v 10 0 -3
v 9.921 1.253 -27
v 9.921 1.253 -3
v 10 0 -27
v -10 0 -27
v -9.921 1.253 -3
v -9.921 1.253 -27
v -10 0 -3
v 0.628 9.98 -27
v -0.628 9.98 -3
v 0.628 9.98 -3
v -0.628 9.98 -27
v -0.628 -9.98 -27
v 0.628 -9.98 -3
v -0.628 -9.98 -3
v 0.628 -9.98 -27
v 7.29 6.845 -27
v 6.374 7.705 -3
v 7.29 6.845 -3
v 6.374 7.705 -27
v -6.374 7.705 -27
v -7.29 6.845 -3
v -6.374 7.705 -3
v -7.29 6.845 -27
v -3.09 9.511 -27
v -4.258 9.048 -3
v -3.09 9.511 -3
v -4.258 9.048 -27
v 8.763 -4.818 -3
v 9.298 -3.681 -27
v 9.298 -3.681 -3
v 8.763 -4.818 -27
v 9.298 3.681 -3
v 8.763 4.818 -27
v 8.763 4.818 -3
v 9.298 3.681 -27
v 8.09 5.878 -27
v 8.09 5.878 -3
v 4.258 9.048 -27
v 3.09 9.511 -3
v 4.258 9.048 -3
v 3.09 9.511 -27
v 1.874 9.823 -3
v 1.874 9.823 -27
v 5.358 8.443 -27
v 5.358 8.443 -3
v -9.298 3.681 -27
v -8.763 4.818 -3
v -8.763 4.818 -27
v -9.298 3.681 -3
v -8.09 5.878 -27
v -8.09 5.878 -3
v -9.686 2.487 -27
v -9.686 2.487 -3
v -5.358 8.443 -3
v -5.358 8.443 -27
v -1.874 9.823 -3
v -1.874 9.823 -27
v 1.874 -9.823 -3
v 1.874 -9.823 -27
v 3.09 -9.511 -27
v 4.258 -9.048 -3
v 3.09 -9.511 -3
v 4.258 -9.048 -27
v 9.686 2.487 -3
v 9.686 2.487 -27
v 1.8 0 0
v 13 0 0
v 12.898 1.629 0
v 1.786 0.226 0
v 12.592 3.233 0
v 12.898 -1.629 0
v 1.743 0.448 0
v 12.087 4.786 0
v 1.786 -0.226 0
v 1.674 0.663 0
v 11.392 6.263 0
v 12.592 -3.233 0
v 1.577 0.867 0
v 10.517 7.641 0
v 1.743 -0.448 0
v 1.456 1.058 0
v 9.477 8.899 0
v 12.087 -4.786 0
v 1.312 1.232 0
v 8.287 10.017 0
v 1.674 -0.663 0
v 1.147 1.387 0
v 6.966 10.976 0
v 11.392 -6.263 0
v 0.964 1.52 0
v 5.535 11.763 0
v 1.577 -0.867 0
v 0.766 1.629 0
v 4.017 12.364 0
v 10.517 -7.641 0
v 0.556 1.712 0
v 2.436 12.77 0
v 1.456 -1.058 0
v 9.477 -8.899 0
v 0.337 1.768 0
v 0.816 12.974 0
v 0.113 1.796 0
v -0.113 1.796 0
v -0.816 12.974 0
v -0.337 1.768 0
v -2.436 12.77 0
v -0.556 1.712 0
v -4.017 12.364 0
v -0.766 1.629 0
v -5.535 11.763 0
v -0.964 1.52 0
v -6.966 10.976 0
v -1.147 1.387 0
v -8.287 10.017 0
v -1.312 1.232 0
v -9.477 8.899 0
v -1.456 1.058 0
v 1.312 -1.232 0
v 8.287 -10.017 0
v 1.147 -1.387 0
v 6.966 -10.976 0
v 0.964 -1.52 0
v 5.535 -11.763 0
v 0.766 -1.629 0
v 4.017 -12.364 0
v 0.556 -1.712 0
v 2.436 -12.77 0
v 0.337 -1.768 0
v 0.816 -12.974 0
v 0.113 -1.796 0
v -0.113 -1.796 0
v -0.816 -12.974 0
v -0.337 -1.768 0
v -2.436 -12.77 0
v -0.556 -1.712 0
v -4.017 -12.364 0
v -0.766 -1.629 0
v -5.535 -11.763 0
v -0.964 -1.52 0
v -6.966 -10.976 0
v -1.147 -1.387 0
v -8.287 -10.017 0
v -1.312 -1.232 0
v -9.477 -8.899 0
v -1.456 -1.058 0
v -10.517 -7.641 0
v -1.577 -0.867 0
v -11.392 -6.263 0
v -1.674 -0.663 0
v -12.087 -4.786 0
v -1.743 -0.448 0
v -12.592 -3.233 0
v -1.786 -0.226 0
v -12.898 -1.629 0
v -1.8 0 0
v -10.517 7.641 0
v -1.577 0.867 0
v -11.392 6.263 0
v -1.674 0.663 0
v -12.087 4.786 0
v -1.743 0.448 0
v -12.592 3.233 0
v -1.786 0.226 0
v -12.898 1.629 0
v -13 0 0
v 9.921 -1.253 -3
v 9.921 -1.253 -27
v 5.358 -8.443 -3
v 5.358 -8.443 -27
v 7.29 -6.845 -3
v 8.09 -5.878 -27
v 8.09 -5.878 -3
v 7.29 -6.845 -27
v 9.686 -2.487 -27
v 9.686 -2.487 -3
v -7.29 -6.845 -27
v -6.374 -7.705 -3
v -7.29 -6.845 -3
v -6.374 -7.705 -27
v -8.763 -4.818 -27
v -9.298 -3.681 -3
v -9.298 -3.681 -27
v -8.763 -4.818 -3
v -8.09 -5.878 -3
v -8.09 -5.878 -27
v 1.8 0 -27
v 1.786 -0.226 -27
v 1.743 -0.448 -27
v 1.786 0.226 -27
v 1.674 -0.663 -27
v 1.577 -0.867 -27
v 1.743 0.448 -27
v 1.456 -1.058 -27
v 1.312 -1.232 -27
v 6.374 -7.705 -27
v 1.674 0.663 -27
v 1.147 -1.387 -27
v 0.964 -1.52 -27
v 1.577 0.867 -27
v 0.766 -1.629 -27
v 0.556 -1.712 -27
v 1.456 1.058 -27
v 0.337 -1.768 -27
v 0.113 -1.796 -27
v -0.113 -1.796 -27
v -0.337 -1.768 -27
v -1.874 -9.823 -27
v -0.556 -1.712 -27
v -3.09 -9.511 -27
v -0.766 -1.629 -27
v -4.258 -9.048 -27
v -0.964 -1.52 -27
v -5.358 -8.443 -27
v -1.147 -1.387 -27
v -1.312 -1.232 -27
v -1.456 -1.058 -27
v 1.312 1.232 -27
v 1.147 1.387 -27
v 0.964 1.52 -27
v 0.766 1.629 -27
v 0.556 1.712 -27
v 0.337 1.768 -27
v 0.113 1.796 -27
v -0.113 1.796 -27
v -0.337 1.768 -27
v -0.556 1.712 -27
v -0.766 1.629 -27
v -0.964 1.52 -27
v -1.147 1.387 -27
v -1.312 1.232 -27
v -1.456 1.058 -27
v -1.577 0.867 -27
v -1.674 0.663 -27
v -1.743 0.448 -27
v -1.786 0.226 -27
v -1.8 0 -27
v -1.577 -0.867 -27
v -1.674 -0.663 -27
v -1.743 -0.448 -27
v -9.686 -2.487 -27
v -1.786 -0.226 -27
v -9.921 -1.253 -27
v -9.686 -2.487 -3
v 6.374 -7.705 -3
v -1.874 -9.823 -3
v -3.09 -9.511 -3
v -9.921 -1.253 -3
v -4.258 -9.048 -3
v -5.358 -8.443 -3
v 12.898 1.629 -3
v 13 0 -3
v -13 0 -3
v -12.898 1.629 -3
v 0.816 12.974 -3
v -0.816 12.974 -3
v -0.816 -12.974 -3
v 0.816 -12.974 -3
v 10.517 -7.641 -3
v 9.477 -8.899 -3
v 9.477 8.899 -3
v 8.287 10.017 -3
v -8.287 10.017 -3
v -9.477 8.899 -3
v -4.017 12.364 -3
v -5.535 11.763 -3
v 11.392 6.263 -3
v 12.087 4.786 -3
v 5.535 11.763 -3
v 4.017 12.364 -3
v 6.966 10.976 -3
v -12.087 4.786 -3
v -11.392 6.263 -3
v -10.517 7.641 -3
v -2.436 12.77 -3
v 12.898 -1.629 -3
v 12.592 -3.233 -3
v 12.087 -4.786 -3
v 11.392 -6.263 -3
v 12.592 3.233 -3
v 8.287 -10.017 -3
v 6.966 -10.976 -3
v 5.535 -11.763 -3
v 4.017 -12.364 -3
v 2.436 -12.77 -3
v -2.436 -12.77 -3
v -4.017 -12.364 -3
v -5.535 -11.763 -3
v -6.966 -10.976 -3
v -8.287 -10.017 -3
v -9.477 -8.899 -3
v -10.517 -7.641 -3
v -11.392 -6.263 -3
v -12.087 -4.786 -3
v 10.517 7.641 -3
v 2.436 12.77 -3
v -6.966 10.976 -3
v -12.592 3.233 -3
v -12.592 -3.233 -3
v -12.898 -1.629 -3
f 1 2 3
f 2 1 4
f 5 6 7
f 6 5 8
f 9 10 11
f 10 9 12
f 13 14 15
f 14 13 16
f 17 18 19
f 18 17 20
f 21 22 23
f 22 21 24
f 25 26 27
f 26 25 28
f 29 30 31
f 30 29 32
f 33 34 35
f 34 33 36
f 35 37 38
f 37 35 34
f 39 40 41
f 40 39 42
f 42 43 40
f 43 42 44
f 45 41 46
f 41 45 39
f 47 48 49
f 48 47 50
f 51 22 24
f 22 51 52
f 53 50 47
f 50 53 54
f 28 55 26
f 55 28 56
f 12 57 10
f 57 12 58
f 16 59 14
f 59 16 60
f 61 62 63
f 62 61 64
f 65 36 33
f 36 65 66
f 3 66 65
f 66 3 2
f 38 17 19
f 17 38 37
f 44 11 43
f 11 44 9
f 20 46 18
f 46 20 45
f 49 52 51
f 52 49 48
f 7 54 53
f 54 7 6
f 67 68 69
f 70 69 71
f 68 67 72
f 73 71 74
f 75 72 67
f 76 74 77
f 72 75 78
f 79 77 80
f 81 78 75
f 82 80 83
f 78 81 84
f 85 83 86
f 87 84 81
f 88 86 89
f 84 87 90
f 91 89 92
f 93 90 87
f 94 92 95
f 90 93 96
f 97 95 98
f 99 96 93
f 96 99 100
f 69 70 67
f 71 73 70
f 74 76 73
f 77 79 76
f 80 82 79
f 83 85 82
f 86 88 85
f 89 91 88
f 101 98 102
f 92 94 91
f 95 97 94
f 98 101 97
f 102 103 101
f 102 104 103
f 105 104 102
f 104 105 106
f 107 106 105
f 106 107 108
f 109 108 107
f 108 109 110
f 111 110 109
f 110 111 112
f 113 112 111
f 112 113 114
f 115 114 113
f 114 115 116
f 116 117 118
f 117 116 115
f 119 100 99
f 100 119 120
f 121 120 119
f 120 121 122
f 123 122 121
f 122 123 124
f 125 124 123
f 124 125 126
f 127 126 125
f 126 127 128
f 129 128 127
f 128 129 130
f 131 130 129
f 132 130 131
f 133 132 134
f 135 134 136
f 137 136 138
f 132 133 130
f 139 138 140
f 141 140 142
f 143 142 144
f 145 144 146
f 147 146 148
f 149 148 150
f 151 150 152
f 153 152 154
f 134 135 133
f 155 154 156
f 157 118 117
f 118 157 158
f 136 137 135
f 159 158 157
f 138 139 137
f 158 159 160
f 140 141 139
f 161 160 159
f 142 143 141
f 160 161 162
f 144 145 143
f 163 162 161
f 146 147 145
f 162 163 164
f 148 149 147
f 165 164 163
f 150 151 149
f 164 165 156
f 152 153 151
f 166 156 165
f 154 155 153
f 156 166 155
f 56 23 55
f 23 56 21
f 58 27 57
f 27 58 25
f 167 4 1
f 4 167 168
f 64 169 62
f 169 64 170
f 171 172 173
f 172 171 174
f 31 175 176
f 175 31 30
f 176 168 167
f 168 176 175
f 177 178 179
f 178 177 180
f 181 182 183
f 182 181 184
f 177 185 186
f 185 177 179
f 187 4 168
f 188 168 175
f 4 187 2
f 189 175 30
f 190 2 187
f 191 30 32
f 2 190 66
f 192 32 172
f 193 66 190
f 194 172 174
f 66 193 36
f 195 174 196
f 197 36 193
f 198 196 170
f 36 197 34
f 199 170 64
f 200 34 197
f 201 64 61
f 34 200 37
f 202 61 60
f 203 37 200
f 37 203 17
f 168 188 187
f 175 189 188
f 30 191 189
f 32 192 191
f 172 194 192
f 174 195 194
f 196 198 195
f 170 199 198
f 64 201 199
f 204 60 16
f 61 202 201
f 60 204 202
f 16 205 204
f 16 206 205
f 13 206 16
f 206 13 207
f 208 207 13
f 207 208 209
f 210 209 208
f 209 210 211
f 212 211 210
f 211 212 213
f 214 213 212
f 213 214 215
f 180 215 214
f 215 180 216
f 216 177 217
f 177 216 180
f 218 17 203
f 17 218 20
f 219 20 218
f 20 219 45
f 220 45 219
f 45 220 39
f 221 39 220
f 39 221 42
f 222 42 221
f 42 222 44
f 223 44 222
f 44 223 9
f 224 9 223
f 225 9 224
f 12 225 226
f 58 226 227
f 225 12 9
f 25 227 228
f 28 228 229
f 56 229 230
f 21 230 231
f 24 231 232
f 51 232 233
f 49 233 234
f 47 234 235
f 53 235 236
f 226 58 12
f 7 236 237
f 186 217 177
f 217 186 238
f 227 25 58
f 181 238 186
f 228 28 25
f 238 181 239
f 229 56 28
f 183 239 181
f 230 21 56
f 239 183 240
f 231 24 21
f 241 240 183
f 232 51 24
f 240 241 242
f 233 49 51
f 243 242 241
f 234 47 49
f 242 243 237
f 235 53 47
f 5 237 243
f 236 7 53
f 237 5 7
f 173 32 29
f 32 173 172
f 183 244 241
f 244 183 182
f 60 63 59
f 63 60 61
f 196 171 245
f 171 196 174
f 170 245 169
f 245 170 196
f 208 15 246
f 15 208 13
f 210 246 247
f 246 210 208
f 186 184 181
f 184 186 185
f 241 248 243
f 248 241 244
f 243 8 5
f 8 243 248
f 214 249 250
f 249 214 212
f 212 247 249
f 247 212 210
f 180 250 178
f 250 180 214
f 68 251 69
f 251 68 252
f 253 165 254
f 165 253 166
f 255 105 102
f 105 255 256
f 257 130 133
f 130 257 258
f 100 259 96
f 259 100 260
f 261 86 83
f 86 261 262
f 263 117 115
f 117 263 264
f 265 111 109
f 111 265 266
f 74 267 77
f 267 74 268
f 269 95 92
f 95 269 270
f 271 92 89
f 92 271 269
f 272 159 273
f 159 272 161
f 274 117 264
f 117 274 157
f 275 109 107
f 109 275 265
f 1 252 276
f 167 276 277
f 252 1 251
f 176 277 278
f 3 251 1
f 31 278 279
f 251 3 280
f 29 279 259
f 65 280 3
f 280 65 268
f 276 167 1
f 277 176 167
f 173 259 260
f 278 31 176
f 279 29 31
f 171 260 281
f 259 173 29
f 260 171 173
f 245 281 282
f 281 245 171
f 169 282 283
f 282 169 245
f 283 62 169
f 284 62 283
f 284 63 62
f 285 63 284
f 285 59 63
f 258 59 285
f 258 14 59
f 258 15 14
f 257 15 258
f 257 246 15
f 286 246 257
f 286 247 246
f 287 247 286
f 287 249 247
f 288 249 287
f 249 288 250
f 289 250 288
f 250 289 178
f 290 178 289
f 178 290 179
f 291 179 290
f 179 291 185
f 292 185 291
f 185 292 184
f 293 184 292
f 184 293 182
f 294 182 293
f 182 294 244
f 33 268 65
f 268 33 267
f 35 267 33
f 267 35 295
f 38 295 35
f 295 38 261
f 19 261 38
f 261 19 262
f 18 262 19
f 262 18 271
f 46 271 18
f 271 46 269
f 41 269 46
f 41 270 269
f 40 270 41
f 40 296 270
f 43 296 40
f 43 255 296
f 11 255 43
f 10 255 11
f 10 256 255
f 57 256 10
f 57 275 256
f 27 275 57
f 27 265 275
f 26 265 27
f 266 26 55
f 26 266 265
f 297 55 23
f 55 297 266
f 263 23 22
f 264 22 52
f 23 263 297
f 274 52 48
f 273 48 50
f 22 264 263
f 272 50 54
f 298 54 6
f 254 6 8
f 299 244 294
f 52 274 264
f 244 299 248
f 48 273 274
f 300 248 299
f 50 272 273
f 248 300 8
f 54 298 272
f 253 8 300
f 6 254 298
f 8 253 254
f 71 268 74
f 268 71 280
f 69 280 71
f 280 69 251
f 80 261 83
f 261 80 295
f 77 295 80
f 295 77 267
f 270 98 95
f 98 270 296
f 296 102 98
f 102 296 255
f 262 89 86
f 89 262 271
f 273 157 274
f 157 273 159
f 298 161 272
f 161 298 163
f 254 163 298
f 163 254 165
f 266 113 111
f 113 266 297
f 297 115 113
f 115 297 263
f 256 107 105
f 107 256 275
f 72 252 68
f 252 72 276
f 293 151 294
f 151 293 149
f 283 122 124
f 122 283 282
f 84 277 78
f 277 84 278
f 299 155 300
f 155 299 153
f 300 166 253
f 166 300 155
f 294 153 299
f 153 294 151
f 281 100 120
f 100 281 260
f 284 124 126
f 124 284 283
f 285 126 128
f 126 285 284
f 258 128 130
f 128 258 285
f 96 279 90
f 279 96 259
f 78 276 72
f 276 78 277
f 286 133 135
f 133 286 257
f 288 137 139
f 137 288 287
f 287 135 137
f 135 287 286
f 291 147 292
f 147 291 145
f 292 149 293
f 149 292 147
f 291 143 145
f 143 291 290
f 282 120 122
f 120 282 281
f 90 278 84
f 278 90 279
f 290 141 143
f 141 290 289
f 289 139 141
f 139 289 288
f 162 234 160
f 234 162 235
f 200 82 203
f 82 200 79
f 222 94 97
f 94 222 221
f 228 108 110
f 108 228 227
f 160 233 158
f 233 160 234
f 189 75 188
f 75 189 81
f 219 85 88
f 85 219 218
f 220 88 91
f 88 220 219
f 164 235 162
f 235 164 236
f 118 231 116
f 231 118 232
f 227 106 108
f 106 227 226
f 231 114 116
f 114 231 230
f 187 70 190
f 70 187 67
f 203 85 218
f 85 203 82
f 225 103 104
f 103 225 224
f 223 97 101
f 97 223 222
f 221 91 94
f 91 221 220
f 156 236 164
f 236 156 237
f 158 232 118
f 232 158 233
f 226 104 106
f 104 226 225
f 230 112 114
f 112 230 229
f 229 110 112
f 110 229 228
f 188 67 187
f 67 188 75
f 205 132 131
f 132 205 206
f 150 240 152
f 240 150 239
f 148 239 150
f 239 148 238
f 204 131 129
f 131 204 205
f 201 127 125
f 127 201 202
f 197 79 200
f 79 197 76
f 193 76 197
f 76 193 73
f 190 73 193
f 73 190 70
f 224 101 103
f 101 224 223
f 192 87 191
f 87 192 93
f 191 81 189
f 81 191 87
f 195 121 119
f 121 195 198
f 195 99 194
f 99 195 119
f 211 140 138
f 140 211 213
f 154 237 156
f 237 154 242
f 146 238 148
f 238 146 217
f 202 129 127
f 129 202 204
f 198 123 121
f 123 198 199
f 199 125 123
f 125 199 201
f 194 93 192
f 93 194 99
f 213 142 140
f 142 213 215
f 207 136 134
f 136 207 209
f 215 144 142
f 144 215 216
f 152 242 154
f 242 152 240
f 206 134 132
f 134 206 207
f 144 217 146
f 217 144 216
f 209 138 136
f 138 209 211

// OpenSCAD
$fn = 50;


difference() {
	union() {
		translate(v = [0, 0, -27.0000000000]) {
			cylinder(h = 27, r = 10.0000000000);
		}
		translate(v = [0, 0, -3.0000000000]) {
			cylinder(h = 3, r = 13.0000000000);
		}
	}
	union() {
		#translate(v = [0, 0, -27]) {
			cylinder(h = 27, r = 1.8000000000);
		}
	}
}
